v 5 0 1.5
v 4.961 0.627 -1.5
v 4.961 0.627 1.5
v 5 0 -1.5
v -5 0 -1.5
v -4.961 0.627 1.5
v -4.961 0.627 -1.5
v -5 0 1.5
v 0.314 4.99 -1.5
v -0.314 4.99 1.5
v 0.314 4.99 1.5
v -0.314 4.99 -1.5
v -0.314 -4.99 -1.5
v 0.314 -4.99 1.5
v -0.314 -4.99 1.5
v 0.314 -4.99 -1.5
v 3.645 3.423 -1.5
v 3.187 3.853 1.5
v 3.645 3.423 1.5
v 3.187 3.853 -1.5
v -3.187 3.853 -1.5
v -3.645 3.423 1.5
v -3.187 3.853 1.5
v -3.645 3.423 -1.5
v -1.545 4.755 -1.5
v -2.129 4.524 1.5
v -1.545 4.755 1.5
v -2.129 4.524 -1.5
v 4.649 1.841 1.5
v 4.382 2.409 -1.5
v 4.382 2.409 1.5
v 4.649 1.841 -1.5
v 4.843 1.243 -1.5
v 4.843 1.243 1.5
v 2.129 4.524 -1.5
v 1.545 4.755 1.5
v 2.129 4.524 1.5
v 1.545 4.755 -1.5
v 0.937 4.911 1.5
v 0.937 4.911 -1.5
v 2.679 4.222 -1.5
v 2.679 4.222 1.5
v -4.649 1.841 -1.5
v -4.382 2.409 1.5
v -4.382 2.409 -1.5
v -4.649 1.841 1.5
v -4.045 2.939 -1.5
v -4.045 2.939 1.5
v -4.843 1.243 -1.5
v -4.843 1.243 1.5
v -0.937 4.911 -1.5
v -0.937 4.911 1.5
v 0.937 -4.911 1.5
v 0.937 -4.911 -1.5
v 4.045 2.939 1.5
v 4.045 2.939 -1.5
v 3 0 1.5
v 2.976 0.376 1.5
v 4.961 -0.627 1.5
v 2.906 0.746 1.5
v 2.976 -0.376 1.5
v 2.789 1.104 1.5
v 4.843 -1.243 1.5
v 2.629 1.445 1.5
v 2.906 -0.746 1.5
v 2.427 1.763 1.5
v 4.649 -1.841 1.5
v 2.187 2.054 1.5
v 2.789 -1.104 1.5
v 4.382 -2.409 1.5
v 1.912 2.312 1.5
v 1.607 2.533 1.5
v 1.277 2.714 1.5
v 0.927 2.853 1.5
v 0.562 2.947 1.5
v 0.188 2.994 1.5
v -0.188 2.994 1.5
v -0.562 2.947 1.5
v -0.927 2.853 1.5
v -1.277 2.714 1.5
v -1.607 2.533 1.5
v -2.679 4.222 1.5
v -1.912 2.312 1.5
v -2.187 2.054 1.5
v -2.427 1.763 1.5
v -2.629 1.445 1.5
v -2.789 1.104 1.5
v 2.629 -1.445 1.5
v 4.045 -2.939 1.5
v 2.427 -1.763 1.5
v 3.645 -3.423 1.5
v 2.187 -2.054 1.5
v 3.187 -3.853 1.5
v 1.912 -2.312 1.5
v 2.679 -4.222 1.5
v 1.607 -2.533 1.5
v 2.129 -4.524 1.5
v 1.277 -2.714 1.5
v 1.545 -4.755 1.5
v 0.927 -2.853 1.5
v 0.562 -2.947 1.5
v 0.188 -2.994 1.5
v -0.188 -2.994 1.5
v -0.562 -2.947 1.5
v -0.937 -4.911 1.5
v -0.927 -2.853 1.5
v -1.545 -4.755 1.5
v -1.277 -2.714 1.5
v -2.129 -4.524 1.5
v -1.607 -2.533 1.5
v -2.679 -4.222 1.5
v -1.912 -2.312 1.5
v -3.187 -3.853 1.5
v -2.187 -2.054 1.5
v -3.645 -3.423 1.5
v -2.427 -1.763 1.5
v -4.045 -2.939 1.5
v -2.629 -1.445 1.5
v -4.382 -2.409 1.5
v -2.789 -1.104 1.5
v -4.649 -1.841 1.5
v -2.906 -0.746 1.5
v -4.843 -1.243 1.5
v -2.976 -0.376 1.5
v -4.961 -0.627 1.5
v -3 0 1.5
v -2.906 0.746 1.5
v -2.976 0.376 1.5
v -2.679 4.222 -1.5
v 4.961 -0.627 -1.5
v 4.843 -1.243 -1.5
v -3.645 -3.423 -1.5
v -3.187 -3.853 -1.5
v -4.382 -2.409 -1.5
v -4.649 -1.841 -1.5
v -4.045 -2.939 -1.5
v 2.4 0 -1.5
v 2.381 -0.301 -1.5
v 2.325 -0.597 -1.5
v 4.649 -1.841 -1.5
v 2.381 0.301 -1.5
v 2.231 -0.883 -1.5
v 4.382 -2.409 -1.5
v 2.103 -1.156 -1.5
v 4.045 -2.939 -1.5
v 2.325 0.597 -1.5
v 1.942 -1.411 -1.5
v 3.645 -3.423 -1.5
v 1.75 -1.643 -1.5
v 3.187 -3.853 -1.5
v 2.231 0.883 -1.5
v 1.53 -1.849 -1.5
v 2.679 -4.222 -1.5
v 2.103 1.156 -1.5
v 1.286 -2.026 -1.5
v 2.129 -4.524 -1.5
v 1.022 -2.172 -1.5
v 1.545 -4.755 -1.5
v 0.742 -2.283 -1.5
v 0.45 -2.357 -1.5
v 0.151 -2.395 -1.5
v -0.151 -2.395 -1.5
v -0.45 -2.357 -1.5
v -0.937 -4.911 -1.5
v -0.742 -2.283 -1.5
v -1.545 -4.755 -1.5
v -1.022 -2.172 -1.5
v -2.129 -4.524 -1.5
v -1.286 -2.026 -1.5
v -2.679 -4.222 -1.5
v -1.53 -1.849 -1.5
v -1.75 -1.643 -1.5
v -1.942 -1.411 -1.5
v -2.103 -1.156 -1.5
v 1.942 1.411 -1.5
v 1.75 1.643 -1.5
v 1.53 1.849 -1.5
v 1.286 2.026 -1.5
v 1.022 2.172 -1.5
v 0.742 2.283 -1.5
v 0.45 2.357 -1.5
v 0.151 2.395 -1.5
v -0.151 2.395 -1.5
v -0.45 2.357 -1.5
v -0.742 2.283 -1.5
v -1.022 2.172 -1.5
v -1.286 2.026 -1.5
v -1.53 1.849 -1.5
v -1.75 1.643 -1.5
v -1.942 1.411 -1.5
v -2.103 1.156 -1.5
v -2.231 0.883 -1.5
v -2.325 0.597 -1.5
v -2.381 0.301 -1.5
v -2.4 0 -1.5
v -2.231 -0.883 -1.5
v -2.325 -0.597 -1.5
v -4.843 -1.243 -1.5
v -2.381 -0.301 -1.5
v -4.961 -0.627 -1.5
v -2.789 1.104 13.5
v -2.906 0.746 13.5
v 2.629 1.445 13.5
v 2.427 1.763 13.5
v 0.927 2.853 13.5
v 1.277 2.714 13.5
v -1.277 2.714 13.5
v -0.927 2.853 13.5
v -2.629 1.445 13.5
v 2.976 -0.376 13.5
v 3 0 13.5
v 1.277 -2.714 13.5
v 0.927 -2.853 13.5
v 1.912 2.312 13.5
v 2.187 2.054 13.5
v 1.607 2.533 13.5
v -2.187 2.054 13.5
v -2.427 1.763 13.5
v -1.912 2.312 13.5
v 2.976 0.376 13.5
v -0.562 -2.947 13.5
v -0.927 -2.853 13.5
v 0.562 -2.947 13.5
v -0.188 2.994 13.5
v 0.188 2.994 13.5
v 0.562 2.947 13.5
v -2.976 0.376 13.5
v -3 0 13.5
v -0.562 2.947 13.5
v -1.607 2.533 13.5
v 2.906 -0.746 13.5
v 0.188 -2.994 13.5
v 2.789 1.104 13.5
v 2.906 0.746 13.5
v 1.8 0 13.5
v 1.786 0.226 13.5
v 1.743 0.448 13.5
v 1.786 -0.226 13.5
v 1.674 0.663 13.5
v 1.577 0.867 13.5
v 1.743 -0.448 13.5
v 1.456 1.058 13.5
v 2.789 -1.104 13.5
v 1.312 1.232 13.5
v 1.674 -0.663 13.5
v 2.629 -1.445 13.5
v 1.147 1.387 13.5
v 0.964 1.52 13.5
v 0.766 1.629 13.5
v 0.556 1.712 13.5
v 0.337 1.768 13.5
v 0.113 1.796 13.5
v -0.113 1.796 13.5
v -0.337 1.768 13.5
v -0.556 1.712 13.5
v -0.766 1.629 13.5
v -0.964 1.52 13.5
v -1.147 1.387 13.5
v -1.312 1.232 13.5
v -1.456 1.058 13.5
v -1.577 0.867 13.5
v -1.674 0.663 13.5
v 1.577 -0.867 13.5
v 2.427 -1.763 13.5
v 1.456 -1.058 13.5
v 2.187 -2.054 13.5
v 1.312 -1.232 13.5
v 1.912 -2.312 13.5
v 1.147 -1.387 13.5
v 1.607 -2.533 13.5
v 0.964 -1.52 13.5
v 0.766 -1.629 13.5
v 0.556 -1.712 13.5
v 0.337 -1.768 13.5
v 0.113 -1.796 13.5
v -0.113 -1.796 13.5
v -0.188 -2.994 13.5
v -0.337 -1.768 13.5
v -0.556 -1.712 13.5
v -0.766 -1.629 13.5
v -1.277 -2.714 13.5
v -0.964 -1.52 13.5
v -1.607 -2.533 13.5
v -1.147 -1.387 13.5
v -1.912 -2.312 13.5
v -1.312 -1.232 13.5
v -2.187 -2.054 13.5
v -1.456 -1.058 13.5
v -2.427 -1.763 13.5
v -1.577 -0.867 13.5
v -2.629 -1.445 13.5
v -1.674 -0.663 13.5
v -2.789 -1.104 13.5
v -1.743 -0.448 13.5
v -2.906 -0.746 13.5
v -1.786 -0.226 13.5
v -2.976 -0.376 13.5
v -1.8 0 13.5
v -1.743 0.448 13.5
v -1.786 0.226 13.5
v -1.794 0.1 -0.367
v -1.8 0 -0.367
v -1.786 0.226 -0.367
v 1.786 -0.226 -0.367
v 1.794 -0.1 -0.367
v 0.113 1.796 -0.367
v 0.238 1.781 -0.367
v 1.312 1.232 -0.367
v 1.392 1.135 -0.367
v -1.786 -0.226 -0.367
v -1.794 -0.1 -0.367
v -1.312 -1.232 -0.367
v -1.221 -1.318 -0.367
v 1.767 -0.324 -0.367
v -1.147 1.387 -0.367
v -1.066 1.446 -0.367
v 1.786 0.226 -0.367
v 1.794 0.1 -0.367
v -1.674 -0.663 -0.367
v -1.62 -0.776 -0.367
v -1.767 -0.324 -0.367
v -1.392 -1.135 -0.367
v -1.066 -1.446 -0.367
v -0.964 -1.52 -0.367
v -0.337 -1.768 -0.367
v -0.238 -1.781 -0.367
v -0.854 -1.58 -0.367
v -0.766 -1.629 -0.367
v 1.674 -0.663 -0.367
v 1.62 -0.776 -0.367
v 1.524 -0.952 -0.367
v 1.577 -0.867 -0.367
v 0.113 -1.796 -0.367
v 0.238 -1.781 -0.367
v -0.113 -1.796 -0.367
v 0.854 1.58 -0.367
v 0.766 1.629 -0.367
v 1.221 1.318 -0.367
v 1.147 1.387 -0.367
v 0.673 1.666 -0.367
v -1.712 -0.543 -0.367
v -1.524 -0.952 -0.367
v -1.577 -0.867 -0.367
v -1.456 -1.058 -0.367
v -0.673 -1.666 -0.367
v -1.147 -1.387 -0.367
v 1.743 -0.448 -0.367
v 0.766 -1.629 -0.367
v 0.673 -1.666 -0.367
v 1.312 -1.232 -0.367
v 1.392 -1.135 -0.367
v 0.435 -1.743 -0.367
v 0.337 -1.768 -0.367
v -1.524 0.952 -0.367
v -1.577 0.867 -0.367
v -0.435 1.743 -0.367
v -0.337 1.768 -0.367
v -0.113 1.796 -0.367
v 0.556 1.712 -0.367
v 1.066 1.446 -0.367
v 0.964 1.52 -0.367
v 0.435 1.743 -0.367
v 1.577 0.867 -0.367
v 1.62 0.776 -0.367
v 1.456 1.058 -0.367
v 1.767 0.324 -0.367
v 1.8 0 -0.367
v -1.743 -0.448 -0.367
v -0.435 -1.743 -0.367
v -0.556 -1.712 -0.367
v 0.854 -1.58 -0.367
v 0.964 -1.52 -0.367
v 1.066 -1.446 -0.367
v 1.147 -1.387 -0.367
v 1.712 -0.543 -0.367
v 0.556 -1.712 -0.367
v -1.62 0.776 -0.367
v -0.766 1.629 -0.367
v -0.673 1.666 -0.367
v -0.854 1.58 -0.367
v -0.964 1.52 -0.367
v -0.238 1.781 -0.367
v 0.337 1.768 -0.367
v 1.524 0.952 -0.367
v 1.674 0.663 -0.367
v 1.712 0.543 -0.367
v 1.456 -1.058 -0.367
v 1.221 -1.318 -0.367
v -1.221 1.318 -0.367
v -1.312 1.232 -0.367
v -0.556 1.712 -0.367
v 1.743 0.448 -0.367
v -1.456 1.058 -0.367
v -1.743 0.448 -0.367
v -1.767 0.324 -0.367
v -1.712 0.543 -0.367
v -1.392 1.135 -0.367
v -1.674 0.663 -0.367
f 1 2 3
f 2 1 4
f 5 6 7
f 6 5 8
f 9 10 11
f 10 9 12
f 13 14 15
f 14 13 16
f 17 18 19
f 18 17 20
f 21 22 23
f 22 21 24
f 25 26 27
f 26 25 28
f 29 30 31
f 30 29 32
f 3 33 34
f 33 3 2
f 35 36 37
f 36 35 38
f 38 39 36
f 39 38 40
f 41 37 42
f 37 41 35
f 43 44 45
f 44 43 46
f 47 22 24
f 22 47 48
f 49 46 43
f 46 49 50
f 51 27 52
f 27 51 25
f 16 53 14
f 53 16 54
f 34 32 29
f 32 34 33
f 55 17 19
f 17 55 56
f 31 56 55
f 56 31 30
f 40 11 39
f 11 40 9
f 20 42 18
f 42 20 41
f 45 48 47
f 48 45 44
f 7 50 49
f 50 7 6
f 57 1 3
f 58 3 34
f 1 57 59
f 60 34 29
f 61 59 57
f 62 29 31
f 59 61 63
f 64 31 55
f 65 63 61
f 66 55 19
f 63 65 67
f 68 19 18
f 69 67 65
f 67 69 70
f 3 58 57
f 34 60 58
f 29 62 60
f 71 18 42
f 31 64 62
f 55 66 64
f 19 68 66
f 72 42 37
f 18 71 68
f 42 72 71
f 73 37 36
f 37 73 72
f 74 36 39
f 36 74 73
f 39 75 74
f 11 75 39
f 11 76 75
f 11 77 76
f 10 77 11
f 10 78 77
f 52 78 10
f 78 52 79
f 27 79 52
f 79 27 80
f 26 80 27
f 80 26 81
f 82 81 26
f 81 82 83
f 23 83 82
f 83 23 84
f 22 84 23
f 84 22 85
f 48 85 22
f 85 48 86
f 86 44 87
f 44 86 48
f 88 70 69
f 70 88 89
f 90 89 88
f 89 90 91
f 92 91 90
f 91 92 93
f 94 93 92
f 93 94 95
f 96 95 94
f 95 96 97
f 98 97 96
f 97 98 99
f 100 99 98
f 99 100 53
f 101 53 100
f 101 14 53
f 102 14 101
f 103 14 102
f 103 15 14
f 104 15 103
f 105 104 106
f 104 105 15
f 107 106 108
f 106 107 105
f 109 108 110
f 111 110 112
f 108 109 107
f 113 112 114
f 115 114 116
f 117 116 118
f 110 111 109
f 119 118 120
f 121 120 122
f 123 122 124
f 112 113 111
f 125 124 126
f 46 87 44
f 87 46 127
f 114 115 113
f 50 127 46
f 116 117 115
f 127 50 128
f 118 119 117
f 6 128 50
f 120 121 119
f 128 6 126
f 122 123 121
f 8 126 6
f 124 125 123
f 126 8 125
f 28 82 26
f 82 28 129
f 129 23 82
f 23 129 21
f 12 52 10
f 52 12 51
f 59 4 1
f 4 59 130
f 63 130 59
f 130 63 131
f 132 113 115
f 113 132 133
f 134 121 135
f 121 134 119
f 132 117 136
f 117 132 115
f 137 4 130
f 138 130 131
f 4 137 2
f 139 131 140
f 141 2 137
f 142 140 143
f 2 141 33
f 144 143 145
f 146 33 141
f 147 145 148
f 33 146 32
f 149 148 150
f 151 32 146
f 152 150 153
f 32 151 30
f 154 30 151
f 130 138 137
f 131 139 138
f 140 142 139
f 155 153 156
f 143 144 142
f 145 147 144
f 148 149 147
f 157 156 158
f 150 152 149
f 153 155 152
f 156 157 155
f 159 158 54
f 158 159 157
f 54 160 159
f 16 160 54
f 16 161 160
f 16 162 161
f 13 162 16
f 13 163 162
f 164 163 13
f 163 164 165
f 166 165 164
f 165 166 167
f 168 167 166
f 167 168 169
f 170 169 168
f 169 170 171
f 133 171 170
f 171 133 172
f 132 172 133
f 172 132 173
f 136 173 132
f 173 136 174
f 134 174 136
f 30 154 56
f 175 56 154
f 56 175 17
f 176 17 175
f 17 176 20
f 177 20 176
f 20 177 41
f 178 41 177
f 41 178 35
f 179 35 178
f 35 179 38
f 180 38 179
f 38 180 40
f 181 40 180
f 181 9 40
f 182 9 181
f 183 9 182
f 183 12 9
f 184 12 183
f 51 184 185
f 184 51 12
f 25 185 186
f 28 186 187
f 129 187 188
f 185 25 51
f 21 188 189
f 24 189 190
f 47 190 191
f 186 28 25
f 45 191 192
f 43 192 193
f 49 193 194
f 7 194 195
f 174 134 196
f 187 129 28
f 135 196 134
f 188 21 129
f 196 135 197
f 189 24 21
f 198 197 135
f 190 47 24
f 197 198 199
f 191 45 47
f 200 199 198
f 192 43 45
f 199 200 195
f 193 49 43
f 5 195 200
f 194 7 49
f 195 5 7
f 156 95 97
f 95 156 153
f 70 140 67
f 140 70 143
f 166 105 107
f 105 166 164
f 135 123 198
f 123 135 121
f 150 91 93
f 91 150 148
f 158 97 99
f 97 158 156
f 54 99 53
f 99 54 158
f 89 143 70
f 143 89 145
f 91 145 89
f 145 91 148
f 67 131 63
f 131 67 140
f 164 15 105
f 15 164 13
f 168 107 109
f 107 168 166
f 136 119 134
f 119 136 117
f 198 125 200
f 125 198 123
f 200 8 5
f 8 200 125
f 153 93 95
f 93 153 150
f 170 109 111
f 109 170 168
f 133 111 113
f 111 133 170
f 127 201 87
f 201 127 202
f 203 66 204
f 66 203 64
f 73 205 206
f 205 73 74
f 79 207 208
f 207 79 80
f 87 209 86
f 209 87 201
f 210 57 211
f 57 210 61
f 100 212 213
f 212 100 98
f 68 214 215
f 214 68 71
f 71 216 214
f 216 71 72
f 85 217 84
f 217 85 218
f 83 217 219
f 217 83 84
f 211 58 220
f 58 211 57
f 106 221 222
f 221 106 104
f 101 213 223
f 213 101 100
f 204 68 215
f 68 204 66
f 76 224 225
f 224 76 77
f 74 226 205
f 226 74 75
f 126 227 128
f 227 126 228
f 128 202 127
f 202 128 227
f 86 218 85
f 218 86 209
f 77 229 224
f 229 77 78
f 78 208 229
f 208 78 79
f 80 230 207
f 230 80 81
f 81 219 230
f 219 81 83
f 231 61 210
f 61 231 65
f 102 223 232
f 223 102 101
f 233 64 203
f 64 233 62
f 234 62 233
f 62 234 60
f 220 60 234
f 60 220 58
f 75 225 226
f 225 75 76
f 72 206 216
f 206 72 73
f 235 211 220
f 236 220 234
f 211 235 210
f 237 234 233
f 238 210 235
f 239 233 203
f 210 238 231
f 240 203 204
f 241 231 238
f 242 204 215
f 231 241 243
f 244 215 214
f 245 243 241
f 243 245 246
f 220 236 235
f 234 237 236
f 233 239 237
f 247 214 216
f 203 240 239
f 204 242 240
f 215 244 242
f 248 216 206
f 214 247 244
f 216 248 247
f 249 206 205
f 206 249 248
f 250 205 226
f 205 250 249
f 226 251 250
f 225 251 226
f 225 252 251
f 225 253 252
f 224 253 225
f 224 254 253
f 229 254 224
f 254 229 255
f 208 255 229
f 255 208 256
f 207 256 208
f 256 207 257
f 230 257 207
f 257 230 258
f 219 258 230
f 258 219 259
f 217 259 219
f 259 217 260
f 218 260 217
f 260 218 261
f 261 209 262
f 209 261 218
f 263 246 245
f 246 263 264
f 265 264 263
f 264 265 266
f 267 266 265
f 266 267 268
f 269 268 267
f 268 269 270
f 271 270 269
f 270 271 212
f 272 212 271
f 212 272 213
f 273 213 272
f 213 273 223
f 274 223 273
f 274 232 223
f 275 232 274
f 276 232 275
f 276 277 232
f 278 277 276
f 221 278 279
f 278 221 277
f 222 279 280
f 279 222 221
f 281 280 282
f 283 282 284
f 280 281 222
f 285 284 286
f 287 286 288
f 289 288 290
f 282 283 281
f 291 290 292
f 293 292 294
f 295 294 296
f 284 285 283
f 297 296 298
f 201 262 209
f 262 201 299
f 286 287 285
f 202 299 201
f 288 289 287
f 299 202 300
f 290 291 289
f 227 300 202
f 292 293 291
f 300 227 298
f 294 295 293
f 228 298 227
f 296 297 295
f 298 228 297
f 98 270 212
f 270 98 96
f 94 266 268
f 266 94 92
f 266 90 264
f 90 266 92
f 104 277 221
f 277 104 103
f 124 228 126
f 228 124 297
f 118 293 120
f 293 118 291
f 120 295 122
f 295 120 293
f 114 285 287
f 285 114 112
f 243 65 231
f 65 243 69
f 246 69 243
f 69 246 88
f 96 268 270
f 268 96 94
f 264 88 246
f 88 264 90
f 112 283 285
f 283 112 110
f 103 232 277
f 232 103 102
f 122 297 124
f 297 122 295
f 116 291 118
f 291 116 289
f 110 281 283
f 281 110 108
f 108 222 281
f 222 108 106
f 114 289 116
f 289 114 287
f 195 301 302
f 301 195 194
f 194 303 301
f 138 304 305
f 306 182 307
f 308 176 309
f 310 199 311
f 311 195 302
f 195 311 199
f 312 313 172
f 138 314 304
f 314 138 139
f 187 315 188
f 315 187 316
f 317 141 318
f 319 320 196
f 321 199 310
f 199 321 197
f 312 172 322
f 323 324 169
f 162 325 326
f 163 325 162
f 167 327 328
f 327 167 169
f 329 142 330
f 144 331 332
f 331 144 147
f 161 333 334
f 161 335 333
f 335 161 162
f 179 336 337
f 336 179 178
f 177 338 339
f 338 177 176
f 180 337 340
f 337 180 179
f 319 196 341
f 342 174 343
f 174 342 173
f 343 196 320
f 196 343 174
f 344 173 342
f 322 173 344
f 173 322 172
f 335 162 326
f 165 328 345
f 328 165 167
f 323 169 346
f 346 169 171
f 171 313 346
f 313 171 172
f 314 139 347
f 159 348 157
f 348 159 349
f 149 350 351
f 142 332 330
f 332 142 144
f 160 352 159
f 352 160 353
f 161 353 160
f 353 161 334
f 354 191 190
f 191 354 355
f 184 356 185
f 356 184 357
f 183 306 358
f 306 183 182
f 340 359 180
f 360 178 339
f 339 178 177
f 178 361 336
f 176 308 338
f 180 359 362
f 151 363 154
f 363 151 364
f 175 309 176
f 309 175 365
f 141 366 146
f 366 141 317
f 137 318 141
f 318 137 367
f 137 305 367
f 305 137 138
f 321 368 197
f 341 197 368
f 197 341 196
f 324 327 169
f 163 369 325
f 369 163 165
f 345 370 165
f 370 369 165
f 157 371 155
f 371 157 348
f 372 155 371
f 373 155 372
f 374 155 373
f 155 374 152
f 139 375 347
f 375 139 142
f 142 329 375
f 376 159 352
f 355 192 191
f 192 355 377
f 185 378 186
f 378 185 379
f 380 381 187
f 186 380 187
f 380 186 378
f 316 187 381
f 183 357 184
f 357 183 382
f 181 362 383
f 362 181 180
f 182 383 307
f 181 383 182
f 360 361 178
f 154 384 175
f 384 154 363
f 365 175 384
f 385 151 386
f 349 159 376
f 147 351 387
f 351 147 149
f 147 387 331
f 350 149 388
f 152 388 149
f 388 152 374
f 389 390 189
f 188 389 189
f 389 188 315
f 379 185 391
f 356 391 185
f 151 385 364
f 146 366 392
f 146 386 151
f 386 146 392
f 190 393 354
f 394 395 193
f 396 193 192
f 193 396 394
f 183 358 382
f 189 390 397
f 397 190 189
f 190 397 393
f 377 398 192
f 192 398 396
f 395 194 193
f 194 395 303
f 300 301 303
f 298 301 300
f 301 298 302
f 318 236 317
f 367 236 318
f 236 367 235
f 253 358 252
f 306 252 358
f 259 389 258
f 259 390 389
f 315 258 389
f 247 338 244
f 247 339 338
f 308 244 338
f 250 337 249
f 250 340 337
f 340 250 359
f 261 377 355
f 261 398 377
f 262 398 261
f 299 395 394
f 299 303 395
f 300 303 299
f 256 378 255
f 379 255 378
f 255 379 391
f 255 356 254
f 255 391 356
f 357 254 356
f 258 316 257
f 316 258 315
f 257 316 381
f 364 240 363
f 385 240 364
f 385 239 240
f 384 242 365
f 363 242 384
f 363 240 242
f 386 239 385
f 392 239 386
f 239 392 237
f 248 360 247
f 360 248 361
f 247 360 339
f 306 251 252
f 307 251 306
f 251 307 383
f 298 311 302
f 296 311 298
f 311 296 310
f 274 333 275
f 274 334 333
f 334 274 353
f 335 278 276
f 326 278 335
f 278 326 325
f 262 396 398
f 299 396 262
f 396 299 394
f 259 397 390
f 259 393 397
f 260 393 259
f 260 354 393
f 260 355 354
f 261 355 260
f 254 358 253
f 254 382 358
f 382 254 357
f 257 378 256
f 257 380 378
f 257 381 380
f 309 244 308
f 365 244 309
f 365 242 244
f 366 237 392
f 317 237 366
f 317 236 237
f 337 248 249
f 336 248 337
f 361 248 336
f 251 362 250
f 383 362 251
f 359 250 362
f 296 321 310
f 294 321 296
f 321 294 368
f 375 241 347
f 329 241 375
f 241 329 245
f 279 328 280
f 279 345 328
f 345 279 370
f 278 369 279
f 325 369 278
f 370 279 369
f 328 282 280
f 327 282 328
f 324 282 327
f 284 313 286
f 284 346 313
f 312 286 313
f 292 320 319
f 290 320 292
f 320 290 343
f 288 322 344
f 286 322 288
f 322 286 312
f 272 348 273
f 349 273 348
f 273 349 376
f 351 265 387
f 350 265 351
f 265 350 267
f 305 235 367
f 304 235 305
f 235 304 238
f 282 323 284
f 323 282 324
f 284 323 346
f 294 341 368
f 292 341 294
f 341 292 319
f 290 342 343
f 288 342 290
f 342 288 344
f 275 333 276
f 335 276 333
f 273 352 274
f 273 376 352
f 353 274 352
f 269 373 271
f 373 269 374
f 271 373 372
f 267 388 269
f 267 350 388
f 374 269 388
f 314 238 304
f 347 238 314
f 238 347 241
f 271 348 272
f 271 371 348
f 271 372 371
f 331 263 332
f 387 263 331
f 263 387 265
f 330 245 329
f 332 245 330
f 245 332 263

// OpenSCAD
$fn = 50;


difference() {
	union() {
		translate(v = [0, 0, -1.5000000000]) {
			cylinder(h = 3, r = 5.0000000000);
		}
		translate(v = [0, 0, -1.5000000000]) {
			cylinder(h = 15, r = 3.0000000000);
		}
	}
	union() {
		translate(v = [0, 0, -1.5000000000]) {
			rotate(a = [0, 180, 0]) {
				difference() {
					union() {
						translate(v = [0, 0, -1.7000000000]) {
							cylinder(h = 1.7000000000, r1 = 1.5000000000, r2 = 2.4000000000);
						}
						translate(v = [0, 0, -15.0000000000]) {
							cylinder(h = 15, r = 1.5000000000);
						}
						translate(v = [0, 0, -15.0000000000]) {
							cylinder(h = 15, r = 1.8000000000);
						}
						translate(v = [0, 0, -15.0000000000]) {
							cylinder(h = 15, r = 1.5000000000);
						}
					}
					union();
				}
			}
		}
		translate(v = [0, 0, -50.0000000000]) {
			cylinder(h = 100, r = 1.5000000000);
		}
	}
}
